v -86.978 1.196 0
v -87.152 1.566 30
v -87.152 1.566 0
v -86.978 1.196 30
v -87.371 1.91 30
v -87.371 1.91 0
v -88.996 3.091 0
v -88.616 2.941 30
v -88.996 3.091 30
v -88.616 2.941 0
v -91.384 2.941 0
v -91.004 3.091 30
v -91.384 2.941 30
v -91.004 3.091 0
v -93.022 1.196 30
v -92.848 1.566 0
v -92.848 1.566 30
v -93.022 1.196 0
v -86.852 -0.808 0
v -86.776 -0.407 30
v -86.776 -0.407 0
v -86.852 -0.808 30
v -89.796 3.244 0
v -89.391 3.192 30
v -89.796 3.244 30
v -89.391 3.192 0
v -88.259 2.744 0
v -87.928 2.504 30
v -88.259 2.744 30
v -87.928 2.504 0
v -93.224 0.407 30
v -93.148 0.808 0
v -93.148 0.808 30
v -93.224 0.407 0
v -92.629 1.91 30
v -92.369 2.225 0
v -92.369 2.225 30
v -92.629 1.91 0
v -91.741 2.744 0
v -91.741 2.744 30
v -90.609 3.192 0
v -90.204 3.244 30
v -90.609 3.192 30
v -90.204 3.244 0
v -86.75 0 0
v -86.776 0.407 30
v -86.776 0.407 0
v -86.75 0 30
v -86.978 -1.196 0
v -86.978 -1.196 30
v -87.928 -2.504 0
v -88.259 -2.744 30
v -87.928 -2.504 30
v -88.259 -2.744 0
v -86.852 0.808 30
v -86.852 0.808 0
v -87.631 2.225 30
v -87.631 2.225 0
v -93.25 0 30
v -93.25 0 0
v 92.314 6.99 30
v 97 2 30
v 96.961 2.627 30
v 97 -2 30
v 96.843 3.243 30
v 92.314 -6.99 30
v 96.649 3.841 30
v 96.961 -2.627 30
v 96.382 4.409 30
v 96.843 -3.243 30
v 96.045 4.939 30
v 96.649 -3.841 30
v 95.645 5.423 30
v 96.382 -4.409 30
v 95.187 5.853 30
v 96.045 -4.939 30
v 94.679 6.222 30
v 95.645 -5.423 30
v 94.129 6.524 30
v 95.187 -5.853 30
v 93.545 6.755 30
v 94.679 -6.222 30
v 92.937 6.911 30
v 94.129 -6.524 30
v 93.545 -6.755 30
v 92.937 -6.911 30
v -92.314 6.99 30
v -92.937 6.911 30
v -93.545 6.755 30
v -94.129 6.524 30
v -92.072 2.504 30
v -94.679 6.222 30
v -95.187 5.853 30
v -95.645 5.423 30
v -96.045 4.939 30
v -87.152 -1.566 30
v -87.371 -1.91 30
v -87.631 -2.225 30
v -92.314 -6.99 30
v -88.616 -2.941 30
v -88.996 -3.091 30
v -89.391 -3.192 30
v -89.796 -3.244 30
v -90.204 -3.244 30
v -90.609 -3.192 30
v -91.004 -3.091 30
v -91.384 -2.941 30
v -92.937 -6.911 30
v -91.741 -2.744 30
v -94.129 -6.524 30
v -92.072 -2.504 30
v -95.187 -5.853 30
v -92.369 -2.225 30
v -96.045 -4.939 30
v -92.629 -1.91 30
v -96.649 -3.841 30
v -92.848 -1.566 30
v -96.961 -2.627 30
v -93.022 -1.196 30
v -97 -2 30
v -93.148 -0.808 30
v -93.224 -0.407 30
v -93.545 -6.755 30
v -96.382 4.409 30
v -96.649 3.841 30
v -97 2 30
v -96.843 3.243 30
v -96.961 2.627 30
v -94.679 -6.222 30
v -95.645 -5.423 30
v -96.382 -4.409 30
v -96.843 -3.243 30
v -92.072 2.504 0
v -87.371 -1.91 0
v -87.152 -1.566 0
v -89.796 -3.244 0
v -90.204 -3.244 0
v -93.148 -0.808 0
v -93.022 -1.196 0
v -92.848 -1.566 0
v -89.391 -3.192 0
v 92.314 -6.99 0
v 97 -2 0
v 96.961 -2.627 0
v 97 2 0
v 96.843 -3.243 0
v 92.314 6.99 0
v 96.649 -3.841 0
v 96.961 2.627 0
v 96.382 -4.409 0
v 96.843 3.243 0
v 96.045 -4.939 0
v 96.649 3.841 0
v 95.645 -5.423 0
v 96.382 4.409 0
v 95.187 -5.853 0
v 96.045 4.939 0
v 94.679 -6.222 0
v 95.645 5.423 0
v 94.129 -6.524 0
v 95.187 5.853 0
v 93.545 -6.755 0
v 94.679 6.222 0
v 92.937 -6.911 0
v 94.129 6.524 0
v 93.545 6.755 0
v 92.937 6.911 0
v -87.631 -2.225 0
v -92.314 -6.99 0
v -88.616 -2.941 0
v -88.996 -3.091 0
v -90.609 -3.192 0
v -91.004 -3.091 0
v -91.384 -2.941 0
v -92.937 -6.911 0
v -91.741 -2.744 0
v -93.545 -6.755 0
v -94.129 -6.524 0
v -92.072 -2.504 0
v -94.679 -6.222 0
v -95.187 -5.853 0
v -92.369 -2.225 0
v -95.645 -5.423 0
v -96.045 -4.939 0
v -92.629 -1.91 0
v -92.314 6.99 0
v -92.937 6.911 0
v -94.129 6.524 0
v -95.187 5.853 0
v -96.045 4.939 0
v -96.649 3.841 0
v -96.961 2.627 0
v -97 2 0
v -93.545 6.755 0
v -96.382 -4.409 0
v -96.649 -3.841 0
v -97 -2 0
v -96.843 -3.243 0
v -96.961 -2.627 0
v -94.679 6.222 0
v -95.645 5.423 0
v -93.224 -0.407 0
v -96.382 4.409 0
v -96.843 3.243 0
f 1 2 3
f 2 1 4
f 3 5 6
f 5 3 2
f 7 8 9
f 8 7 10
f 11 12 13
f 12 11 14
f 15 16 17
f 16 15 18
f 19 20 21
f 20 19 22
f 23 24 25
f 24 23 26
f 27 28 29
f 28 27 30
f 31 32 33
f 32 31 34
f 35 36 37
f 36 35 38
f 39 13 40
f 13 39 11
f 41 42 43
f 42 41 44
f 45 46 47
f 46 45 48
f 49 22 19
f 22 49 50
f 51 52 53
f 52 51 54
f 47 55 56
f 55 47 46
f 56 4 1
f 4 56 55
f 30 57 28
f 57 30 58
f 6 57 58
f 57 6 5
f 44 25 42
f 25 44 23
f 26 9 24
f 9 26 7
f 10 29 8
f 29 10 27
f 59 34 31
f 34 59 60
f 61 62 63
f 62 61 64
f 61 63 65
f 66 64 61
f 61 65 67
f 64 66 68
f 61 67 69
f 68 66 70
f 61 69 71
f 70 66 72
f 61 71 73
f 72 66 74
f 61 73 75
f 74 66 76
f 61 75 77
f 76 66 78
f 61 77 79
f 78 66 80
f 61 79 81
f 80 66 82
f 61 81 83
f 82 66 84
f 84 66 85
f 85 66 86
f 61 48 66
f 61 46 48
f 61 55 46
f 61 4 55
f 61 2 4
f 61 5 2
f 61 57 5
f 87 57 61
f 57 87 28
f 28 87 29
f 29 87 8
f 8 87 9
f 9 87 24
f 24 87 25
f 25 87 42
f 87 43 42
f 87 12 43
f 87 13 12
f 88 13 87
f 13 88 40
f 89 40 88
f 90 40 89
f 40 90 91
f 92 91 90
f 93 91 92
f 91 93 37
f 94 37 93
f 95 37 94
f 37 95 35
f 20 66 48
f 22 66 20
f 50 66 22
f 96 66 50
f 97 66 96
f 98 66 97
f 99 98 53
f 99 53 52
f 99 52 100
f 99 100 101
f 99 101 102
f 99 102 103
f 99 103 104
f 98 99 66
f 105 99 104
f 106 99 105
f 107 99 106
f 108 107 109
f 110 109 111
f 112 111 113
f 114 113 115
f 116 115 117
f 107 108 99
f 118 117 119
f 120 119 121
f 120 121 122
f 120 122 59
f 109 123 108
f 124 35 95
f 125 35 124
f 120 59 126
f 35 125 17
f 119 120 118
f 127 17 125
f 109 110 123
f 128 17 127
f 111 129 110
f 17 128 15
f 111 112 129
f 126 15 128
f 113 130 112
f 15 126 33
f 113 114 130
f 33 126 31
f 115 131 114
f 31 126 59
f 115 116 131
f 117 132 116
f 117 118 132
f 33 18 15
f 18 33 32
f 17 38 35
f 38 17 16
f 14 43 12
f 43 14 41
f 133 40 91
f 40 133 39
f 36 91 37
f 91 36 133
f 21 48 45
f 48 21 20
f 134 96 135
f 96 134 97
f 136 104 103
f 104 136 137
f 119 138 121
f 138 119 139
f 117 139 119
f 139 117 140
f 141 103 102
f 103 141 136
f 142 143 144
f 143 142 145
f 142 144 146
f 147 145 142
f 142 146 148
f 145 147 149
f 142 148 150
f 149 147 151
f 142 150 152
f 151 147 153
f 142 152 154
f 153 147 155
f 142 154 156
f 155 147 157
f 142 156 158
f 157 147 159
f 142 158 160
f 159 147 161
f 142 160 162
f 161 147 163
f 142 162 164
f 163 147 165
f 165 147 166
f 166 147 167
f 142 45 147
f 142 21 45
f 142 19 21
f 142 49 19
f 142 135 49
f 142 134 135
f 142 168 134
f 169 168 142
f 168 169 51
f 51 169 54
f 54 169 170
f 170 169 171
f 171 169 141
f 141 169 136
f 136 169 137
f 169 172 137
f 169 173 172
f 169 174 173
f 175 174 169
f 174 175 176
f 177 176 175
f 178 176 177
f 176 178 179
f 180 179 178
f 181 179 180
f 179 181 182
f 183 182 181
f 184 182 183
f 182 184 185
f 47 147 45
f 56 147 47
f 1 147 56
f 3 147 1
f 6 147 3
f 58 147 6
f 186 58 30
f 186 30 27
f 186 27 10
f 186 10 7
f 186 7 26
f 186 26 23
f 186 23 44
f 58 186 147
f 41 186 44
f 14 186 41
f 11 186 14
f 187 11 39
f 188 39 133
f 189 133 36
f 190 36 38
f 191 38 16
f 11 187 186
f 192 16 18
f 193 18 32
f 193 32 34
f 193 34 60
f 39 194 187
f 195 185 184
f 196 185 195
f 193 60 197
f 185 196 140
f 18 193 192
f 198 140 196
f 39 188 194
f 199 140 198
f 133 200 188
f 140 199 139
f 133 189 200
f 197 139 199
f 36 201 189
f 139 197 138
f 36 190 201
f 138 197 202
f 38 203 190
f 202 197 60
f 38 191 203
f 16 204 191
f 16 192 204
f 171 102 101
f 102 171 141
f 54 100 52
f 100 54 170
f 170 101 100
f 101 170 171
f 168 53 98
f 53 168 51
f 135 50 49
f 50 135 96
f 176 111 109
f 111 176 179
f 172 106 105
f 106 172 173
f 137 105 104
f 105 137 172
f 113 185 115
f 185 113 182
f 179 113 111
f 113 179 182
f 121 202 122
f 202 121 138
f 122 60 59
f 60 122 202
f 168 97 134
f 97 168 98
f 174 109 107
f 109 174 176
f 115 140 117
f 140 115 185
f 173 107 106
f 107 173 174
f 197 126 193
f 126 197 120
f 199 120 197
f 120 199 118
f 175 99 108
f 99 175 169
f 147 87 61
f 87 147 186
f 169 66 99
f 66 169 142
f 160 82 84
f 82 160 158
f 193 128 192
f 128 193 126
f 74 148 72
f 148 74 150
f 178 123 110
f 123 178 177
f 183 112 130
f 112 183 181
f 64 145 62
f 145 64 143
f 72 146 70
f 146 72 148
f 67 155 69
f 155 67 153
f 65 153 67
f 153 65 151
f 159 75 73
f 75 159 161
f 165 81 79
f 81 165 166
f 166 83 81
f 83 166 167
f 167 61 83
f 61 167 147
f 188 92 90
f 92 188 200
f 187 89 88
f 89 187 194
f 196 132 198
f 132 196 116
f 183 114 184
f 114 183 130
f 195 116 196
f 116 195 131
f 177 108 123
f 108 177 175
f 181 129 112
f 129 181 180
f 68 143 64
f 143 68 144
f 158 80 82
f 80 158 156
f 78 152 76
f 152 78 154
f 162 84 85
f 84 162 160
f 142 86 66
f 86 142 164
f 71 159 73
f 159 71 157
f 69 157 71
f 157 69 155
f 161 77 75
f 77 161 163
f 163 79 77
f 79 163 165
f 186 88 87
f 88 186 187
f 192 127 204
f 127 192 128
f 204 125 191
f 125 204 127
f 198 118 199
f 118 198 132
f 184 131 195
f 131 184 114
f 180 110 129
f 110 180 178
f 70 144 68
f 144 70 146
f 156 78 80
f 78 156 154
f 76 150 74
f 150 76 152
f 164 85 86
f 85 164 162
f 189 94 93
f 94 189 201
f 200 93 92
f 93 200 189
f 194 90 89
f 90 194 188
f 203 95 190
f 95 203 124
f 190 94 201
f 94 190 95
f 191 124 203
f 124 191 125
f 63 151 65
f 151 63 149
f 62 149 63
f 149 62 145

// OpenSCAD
$fn = 50;


difference() {
	union() {
		hull() {
			translate(v = [-92.0000000000, 2.0000000000, 0]) {
				cylinder(h = 30, r = 5);
			}
			translate(v = [92.0000000000, 2.0000000000, 0]) {
				cylinder(h = 30, r = 5);
			}
			translate(v = [-92.0000000000, -2.0000000000, 0]) {
				cylinder(h = 30, r = 5);
			}
			translate(v = [92.0000000000, -2.0000000000, 0]) {
				cylinder(h = 30, r = 5);
			}
		}
	}
	union() {
		translate(v = [-90.0000000000, 0.0000000000, 0]) {
			cylinder(h = 30, r = 3.2500000000);
		}
		translate(v = [-90.0000000000, 0.0000000000, 0]) {
			cylinder(h = 30, r = 1.8000000000);
		}
		translate(v = [-90.0000000000, 0.0000000000, 0]) {
			cylinder(h = 30, r = 1.8000000000);
		}
		translate(v = [-90.0000000000, 0.0000000000, 0]) {
			cylinder(h = 30, r = 1.8000000000);
		}
	}
}
